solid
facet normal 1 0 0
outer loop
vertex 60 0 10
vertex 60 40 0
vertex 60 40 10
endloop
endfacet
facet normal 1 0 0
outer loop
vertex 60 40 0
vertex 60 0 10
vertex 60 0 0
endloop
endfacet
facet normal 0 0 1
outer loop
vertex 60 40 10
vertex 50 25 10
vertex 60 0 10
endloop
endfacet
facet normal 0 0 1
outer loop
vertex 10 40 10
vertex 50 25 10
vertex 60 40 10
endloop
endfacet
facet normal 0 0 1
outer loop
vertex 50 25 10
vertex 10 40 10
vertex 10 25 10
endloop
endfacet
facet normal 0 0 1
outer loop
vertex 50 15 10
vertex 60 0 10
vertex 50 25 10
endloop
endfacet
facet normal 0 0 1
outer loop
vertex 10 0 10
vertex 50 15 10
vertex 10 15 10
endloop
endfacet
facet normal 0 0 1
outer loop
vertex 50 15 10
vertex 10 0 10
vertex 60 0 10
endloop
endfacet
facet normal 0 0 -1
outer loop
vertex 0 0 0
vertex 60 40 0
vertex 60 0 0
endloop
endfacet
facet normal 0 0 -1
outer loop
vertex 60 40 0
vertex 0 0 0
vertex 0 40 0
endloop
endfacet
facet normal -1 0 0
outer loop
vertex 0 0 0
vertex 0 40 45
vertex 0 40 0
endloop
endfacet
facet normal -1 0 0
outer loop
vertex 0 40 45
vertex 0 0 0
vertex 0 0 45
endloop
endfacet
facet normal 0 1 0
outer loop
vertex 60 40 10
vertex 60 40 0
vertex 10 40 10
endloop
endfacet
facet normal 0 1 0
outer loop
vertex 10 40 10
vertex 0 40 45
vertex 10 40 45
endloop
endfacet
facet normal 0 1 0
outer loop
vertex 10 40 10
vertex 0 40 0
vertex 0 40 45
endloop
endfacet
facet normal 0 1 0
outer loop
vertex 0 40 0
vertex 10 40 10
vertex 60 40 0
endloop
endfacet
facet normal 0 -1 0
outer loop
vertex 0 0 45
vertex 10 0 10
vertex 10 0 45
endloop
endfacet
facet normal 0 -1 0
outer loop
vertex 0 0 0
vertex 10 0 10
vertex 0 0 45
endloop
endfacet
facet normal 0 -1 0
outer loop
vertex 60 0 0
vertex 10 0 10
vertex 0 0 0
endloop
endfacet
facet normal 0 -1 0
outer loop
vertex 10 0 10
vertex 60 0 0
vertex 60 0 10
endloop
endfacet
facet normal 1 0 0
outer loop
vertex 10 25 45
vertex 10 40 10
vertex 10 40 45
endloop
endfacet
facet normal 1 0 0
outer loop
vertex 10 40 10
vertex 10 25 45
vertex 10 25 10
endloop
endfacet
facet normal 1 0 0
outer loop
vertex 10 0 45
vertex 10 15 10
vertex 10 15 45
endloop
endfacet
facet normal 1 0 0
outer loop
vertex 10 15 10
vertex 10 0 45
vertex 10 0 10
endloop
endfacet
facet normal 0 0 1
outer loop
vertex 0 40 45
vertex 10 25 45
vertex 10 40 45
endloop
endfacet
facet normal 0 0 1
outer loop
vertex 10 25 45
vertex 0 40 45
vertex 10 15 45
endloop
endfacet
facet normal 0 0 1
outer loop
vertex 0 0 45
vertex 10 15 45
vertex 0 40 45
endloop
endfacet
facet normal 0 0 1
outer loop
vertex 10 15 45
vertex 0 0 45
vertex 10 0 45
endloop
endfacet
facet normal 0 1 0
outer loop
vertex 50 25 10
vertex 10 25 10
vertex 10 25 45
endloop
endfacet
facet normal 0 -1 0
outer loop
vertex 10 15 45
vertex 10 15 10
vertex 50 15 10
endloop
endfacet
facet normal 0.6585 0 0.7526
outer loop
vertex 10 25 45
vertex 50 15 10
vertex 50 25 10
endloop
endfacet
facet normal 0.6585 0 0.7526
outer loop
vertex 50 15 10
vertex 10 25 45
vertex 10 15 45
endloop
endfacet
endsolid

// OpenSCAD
// 肋板角架（rib）— 由 ortho_lib_work/objects.py 產生，請改 objects.py 後重建
// 底板 60×40×10；左邊立板寬 10、全深、高 45；中間有一片厚 10 的三角肋板連接立板與底板（深 20 處到底板右端）。
union() {
    translate([0,0,0]) cube([60,40,10]);
    translate([0,0,0]) cube([10,40,45]);
    multmatrix([[1,0,0,0],[0,0,-1,25],[0,1,0,0],[0,0,0,1]]) linear_extrude(height=10) polygon([[10,10],[50,10],[10,45]]);
}
